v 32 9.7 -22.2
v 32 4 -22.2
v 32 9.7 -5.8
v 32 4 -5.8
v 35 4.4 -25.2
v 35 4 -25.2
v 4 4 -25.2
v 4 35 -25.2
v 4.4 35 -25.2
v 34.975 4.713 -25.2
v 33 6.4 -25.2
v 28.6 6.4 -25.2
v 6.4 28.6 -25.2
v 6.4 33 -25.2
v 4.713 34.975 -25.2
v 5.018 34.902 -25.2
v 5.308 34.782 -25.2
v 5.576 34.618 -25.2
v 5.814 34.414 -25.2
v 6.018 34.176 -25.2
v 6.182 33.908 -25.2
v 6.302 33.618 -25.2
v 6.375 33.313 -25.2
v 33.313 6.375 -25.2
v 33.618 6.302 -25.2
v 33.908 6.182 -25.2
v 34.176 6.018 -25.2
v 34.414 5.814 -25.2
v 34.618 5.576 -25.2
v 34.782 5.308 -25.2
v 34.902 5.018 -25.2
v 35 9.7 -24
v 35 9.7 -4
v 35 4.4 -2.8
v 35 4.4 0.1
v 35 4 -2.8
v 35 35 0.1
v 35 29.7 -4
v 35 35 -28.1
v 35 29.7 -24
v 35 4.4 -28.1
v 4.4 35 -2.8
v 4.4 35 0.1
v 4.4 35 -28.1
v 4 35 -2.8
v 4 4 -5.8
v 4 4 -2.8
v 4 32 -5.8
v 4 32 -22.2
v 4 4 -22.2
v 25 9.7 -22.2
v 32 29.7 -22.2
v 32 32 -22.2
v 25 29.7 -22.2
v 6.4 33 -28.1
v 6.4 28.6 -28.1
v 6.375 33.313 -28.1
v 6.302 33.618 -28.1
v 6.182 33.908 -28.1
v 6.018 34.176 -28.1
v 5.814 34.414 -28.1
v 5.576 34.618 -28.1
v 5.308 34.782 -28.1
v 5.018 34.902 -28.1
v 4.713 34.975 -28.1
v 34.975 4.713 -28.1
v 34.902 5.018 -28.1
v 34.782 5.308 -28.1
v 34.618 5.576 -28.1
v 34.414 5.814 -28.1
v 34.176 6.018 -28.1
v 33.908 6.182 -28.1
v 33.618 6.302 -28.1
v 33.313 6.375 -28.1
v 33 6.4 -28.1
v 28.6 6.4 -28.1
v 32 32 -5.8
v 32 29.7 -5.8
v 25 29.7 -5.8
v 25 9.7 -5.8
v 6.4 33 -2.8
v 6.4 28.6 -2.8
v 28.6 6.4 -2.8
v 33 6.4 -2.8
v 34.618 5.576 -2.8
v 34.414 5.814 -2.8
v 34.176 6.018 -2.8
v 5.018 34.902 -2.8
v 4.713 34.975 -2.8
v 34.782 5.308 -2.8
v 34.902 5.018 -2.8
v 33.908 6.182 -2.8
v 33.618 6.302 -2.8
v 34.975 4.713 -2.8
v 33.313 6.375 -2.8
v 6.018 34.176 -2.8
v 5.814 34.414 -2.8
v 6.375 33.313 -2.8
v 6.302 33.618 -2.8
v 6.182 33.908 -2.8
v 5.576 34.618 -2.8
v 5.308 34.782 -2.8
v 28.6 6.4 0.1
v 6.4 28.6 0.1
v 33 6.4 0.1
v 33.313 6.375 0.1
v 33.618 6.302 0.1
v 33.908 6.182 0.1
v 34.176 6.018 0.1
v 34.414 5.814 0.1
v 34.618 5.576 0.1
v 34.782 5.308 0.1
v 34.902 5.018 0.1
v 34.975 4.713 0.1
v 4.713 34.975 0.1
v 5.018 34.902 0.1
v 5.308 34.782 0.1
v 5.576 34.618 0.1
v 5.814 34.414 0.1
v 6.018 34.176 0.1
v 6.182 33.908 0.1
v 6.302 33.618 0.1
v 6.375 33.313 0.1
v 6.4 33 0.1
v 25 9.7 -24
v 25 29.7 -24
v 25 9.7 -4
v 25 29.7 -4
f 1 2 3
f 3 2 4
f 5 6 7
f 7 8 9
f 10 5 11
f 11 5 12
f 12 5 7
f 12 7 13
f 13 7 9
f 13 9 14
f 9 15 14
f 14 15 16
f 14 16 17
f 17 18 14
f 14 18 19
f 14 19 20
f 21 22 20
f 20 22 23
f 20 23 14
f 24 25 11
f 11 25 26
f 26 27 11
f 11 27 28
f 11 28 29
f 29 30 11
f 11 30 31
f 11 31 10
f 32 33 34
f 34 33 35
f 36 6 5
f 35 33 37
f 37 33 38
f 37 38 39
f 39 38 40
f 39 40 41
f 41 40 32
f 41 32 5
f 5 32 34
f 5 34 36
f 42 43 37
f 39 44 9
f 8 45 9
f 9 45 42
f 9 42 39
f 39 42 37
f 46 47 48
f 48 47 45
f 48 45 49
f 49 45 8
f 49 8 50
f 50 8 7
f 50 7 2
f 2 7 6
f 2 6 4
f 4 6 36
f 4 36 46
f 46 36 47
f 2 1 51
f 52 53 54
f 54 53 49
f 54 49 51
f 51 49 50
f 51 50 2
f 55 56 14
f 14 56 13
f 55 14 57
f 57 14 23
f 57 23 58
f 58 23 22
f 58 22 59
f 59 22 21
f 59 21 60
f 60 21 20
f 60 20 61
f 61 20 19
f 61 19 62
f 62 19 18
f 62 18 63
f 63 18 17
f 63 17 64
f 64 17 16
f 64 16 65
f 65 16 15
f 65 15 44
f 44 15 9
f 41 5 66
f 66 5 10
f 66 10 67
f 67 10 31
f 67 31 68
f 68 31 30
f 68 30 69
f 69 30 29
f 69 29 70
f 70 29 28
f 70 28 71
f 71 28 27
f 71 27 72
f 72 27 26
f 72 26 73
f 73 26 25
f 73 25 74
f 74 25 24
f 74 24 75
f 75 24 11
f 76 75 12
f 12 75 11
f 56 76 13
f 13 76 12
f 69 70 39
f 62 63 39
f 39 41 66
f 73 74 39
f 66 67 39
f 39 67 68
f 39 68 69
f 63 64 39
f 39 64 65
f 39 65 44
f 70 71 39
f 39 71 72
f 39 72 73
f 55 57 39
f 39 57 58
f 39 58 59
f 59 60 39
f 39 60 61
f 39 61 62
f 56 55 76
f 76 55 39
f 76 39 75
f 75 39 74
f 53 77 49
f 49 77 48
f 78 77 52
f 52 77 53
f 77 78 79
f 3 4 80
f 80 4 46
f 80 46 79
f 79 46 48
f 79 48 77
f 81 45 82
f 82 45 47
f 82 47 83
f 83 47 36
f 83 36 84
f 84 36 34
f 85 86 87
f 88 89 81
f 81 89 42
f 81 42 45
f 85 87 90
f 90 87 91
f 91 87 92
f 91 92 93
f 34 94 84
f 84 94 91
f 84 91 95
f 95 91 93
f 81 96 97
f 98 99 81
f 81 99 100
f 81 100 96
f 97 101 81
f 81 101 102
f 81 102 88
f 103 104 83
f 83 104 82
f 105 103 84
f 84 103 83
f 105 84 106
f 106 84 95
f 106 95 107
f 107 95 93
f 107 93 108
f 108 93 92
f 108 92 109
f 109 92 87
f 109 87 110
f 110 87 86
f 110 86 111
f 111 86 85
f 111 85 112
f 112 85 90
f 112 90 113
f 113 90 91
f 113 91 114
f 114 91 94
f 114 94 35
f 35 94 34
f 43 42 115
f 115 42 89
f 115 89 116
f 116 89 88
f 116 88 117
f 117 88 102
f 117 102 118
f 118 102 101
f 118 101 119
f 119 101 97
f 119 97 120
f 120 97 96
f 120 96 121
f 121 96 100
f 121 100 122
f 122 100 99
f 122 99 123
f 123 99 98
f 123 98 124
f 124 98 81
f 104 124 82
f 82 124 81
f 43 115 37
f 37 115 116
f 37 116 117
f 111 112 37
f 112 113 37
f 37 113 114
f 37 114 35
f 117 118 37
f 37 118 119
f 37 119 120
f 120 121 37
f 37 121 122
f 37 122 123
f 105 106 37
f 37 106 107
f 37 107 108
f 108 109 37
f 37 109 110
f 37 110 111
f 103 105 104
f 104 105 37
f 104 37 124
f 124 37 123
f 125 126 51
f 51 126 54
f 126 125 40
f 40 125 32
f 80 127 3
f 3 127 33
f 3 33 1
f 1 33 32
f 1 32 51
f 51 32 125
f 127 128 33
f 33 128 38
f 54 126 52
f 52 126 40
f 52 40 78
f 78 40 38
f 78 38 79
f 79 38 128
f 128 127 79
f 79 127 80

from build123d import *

# Parameters (mm, degrees)
SKETCH_5_W          = 31
SKETCH_5_H          = 31
EXTRUDE_1_DEPTH     = 3
SKETCH_6_W          = 31
SKETCH_6_H          = 31
EXTRUDE_2_DEPTH     = 3
EXTRUDE_3_DEPTH     = 2.9
EXTRUDE_4_DEPTH     = 2.9
EXTRUDE_5_DEPTH     = 16.4
SKETCH_10_W         = 20
SKETCH_10_H         = 20
CUT_EXTRUDE_1_DEPTH = 10


with BuildPart() as part:
    # 草图5 → 凸台-拉伸1 (new body)
    with BuildSketch(Plane(origin=(835, 815, -2.8), x_dir=(-1, 0, 0), z_dir=(0, 0, 1))):
        with Locations((815.5, 795.5)):
            Rectangle(SKETCH_5_W, SKETCH_5_H)
    extrude(amount=-EXTRUDE_1_DEPTH)

    # 草图8 → 凸台-拉伸4 (add)
    with BuildSketch(Plane.XY.offset(-2.8)):
        with BuildLine():
            Line((6.4, 33), (6.4, 28.6))
            Line((6.4, 28.6), (28.6, 6.4))
            Line((28.6, 6.4), (33, 6.4))
            ThreePointArc((33, 6.4), (34.414213562, 5.814213562), (35, 4.4))
            Line((35, 4.4), (35, 35))
            Line((35, 35), (4.4, 35))
            ThreePointArc((4.4, 35), (5.814213562, 34.414213562), (6.4, 33))
        make_face()
    extrude(amount=EXTRUDE_4_DEPTH)



with BuildPart() as body_2:
    # 草图6 → 凸台-拉伸2 (new body)
    with BuildSketch(Plane(origin=(835, 815, -25.2), x_dir=(-1, 0, 0), z_dir=(0, 0, 1))):
        with Locations((815.5, 795.5)):
            Rectangle(SKETCH_6_W, SKETCH_6_H)
    extrude(amount=EXTRUDE_2_DEPTH)

    # 草图7 → 凸台-拉伸3 (add)
    with BuildSketch(Plane(origin=(0, 0, -25.2), x_dir=(-1, 0, 0), z_dir=(0, 0, -1))):
        with BuildLine():
            Line((-6.4, 28.6), (-28.6, 6.4))
            Line((-28.6, 6.4), (-33, 6.4))
            ThreePointArc((-33, 6.4), (-34.414213562, 5.814213562), (-35, 4.4))
            Line((-35, 4.4), (-35, 35))
            Line((-35, 35), (-4.4, 35))
            ThreePointArc((-4.4, 35), (-5.814213562, 34.414213562), (-6.4, 33))
            Line((-6.4, 33), (-6.4, 28.6))
        make_face()
    extrude(amount=EXTRUDE_3_DEPTH)


with BuildPart() as part_1:
    add(part.part)

    add(body_2.part)  # 凸台-拉伸5 merges body 2
    # 草图9 → 凸台-拉伸5 (add)
    with BuildSketch(Plane(origin=(0, 0, -5.8), x_dir=(-1, 0, 0), z_dir=(0, 0, -1))):
        Polygon((-35, 4), (-32, 4), (-32, 32), (-4, 32), (-4, 35), (-35, 35), align=None)
    extrude(amount=EXTRUDE_5_DEPTH)

    # 草图10 → 切除-拉伸1 (cut)
    with BuildSketch(Plane(origin=(35, 0, 0), x_dir=(0, 0, -1), z_dir=(1, 0, 0))):
        with Locations((14, 19.7)):
            Rectangle(SKETCH_10_W, SKETCH_10_H)
    extrude(amount=-CUT_EXTRUDE_1_DEPTH, mode=Mode.SUBTRACT)


solid = part_1.part
